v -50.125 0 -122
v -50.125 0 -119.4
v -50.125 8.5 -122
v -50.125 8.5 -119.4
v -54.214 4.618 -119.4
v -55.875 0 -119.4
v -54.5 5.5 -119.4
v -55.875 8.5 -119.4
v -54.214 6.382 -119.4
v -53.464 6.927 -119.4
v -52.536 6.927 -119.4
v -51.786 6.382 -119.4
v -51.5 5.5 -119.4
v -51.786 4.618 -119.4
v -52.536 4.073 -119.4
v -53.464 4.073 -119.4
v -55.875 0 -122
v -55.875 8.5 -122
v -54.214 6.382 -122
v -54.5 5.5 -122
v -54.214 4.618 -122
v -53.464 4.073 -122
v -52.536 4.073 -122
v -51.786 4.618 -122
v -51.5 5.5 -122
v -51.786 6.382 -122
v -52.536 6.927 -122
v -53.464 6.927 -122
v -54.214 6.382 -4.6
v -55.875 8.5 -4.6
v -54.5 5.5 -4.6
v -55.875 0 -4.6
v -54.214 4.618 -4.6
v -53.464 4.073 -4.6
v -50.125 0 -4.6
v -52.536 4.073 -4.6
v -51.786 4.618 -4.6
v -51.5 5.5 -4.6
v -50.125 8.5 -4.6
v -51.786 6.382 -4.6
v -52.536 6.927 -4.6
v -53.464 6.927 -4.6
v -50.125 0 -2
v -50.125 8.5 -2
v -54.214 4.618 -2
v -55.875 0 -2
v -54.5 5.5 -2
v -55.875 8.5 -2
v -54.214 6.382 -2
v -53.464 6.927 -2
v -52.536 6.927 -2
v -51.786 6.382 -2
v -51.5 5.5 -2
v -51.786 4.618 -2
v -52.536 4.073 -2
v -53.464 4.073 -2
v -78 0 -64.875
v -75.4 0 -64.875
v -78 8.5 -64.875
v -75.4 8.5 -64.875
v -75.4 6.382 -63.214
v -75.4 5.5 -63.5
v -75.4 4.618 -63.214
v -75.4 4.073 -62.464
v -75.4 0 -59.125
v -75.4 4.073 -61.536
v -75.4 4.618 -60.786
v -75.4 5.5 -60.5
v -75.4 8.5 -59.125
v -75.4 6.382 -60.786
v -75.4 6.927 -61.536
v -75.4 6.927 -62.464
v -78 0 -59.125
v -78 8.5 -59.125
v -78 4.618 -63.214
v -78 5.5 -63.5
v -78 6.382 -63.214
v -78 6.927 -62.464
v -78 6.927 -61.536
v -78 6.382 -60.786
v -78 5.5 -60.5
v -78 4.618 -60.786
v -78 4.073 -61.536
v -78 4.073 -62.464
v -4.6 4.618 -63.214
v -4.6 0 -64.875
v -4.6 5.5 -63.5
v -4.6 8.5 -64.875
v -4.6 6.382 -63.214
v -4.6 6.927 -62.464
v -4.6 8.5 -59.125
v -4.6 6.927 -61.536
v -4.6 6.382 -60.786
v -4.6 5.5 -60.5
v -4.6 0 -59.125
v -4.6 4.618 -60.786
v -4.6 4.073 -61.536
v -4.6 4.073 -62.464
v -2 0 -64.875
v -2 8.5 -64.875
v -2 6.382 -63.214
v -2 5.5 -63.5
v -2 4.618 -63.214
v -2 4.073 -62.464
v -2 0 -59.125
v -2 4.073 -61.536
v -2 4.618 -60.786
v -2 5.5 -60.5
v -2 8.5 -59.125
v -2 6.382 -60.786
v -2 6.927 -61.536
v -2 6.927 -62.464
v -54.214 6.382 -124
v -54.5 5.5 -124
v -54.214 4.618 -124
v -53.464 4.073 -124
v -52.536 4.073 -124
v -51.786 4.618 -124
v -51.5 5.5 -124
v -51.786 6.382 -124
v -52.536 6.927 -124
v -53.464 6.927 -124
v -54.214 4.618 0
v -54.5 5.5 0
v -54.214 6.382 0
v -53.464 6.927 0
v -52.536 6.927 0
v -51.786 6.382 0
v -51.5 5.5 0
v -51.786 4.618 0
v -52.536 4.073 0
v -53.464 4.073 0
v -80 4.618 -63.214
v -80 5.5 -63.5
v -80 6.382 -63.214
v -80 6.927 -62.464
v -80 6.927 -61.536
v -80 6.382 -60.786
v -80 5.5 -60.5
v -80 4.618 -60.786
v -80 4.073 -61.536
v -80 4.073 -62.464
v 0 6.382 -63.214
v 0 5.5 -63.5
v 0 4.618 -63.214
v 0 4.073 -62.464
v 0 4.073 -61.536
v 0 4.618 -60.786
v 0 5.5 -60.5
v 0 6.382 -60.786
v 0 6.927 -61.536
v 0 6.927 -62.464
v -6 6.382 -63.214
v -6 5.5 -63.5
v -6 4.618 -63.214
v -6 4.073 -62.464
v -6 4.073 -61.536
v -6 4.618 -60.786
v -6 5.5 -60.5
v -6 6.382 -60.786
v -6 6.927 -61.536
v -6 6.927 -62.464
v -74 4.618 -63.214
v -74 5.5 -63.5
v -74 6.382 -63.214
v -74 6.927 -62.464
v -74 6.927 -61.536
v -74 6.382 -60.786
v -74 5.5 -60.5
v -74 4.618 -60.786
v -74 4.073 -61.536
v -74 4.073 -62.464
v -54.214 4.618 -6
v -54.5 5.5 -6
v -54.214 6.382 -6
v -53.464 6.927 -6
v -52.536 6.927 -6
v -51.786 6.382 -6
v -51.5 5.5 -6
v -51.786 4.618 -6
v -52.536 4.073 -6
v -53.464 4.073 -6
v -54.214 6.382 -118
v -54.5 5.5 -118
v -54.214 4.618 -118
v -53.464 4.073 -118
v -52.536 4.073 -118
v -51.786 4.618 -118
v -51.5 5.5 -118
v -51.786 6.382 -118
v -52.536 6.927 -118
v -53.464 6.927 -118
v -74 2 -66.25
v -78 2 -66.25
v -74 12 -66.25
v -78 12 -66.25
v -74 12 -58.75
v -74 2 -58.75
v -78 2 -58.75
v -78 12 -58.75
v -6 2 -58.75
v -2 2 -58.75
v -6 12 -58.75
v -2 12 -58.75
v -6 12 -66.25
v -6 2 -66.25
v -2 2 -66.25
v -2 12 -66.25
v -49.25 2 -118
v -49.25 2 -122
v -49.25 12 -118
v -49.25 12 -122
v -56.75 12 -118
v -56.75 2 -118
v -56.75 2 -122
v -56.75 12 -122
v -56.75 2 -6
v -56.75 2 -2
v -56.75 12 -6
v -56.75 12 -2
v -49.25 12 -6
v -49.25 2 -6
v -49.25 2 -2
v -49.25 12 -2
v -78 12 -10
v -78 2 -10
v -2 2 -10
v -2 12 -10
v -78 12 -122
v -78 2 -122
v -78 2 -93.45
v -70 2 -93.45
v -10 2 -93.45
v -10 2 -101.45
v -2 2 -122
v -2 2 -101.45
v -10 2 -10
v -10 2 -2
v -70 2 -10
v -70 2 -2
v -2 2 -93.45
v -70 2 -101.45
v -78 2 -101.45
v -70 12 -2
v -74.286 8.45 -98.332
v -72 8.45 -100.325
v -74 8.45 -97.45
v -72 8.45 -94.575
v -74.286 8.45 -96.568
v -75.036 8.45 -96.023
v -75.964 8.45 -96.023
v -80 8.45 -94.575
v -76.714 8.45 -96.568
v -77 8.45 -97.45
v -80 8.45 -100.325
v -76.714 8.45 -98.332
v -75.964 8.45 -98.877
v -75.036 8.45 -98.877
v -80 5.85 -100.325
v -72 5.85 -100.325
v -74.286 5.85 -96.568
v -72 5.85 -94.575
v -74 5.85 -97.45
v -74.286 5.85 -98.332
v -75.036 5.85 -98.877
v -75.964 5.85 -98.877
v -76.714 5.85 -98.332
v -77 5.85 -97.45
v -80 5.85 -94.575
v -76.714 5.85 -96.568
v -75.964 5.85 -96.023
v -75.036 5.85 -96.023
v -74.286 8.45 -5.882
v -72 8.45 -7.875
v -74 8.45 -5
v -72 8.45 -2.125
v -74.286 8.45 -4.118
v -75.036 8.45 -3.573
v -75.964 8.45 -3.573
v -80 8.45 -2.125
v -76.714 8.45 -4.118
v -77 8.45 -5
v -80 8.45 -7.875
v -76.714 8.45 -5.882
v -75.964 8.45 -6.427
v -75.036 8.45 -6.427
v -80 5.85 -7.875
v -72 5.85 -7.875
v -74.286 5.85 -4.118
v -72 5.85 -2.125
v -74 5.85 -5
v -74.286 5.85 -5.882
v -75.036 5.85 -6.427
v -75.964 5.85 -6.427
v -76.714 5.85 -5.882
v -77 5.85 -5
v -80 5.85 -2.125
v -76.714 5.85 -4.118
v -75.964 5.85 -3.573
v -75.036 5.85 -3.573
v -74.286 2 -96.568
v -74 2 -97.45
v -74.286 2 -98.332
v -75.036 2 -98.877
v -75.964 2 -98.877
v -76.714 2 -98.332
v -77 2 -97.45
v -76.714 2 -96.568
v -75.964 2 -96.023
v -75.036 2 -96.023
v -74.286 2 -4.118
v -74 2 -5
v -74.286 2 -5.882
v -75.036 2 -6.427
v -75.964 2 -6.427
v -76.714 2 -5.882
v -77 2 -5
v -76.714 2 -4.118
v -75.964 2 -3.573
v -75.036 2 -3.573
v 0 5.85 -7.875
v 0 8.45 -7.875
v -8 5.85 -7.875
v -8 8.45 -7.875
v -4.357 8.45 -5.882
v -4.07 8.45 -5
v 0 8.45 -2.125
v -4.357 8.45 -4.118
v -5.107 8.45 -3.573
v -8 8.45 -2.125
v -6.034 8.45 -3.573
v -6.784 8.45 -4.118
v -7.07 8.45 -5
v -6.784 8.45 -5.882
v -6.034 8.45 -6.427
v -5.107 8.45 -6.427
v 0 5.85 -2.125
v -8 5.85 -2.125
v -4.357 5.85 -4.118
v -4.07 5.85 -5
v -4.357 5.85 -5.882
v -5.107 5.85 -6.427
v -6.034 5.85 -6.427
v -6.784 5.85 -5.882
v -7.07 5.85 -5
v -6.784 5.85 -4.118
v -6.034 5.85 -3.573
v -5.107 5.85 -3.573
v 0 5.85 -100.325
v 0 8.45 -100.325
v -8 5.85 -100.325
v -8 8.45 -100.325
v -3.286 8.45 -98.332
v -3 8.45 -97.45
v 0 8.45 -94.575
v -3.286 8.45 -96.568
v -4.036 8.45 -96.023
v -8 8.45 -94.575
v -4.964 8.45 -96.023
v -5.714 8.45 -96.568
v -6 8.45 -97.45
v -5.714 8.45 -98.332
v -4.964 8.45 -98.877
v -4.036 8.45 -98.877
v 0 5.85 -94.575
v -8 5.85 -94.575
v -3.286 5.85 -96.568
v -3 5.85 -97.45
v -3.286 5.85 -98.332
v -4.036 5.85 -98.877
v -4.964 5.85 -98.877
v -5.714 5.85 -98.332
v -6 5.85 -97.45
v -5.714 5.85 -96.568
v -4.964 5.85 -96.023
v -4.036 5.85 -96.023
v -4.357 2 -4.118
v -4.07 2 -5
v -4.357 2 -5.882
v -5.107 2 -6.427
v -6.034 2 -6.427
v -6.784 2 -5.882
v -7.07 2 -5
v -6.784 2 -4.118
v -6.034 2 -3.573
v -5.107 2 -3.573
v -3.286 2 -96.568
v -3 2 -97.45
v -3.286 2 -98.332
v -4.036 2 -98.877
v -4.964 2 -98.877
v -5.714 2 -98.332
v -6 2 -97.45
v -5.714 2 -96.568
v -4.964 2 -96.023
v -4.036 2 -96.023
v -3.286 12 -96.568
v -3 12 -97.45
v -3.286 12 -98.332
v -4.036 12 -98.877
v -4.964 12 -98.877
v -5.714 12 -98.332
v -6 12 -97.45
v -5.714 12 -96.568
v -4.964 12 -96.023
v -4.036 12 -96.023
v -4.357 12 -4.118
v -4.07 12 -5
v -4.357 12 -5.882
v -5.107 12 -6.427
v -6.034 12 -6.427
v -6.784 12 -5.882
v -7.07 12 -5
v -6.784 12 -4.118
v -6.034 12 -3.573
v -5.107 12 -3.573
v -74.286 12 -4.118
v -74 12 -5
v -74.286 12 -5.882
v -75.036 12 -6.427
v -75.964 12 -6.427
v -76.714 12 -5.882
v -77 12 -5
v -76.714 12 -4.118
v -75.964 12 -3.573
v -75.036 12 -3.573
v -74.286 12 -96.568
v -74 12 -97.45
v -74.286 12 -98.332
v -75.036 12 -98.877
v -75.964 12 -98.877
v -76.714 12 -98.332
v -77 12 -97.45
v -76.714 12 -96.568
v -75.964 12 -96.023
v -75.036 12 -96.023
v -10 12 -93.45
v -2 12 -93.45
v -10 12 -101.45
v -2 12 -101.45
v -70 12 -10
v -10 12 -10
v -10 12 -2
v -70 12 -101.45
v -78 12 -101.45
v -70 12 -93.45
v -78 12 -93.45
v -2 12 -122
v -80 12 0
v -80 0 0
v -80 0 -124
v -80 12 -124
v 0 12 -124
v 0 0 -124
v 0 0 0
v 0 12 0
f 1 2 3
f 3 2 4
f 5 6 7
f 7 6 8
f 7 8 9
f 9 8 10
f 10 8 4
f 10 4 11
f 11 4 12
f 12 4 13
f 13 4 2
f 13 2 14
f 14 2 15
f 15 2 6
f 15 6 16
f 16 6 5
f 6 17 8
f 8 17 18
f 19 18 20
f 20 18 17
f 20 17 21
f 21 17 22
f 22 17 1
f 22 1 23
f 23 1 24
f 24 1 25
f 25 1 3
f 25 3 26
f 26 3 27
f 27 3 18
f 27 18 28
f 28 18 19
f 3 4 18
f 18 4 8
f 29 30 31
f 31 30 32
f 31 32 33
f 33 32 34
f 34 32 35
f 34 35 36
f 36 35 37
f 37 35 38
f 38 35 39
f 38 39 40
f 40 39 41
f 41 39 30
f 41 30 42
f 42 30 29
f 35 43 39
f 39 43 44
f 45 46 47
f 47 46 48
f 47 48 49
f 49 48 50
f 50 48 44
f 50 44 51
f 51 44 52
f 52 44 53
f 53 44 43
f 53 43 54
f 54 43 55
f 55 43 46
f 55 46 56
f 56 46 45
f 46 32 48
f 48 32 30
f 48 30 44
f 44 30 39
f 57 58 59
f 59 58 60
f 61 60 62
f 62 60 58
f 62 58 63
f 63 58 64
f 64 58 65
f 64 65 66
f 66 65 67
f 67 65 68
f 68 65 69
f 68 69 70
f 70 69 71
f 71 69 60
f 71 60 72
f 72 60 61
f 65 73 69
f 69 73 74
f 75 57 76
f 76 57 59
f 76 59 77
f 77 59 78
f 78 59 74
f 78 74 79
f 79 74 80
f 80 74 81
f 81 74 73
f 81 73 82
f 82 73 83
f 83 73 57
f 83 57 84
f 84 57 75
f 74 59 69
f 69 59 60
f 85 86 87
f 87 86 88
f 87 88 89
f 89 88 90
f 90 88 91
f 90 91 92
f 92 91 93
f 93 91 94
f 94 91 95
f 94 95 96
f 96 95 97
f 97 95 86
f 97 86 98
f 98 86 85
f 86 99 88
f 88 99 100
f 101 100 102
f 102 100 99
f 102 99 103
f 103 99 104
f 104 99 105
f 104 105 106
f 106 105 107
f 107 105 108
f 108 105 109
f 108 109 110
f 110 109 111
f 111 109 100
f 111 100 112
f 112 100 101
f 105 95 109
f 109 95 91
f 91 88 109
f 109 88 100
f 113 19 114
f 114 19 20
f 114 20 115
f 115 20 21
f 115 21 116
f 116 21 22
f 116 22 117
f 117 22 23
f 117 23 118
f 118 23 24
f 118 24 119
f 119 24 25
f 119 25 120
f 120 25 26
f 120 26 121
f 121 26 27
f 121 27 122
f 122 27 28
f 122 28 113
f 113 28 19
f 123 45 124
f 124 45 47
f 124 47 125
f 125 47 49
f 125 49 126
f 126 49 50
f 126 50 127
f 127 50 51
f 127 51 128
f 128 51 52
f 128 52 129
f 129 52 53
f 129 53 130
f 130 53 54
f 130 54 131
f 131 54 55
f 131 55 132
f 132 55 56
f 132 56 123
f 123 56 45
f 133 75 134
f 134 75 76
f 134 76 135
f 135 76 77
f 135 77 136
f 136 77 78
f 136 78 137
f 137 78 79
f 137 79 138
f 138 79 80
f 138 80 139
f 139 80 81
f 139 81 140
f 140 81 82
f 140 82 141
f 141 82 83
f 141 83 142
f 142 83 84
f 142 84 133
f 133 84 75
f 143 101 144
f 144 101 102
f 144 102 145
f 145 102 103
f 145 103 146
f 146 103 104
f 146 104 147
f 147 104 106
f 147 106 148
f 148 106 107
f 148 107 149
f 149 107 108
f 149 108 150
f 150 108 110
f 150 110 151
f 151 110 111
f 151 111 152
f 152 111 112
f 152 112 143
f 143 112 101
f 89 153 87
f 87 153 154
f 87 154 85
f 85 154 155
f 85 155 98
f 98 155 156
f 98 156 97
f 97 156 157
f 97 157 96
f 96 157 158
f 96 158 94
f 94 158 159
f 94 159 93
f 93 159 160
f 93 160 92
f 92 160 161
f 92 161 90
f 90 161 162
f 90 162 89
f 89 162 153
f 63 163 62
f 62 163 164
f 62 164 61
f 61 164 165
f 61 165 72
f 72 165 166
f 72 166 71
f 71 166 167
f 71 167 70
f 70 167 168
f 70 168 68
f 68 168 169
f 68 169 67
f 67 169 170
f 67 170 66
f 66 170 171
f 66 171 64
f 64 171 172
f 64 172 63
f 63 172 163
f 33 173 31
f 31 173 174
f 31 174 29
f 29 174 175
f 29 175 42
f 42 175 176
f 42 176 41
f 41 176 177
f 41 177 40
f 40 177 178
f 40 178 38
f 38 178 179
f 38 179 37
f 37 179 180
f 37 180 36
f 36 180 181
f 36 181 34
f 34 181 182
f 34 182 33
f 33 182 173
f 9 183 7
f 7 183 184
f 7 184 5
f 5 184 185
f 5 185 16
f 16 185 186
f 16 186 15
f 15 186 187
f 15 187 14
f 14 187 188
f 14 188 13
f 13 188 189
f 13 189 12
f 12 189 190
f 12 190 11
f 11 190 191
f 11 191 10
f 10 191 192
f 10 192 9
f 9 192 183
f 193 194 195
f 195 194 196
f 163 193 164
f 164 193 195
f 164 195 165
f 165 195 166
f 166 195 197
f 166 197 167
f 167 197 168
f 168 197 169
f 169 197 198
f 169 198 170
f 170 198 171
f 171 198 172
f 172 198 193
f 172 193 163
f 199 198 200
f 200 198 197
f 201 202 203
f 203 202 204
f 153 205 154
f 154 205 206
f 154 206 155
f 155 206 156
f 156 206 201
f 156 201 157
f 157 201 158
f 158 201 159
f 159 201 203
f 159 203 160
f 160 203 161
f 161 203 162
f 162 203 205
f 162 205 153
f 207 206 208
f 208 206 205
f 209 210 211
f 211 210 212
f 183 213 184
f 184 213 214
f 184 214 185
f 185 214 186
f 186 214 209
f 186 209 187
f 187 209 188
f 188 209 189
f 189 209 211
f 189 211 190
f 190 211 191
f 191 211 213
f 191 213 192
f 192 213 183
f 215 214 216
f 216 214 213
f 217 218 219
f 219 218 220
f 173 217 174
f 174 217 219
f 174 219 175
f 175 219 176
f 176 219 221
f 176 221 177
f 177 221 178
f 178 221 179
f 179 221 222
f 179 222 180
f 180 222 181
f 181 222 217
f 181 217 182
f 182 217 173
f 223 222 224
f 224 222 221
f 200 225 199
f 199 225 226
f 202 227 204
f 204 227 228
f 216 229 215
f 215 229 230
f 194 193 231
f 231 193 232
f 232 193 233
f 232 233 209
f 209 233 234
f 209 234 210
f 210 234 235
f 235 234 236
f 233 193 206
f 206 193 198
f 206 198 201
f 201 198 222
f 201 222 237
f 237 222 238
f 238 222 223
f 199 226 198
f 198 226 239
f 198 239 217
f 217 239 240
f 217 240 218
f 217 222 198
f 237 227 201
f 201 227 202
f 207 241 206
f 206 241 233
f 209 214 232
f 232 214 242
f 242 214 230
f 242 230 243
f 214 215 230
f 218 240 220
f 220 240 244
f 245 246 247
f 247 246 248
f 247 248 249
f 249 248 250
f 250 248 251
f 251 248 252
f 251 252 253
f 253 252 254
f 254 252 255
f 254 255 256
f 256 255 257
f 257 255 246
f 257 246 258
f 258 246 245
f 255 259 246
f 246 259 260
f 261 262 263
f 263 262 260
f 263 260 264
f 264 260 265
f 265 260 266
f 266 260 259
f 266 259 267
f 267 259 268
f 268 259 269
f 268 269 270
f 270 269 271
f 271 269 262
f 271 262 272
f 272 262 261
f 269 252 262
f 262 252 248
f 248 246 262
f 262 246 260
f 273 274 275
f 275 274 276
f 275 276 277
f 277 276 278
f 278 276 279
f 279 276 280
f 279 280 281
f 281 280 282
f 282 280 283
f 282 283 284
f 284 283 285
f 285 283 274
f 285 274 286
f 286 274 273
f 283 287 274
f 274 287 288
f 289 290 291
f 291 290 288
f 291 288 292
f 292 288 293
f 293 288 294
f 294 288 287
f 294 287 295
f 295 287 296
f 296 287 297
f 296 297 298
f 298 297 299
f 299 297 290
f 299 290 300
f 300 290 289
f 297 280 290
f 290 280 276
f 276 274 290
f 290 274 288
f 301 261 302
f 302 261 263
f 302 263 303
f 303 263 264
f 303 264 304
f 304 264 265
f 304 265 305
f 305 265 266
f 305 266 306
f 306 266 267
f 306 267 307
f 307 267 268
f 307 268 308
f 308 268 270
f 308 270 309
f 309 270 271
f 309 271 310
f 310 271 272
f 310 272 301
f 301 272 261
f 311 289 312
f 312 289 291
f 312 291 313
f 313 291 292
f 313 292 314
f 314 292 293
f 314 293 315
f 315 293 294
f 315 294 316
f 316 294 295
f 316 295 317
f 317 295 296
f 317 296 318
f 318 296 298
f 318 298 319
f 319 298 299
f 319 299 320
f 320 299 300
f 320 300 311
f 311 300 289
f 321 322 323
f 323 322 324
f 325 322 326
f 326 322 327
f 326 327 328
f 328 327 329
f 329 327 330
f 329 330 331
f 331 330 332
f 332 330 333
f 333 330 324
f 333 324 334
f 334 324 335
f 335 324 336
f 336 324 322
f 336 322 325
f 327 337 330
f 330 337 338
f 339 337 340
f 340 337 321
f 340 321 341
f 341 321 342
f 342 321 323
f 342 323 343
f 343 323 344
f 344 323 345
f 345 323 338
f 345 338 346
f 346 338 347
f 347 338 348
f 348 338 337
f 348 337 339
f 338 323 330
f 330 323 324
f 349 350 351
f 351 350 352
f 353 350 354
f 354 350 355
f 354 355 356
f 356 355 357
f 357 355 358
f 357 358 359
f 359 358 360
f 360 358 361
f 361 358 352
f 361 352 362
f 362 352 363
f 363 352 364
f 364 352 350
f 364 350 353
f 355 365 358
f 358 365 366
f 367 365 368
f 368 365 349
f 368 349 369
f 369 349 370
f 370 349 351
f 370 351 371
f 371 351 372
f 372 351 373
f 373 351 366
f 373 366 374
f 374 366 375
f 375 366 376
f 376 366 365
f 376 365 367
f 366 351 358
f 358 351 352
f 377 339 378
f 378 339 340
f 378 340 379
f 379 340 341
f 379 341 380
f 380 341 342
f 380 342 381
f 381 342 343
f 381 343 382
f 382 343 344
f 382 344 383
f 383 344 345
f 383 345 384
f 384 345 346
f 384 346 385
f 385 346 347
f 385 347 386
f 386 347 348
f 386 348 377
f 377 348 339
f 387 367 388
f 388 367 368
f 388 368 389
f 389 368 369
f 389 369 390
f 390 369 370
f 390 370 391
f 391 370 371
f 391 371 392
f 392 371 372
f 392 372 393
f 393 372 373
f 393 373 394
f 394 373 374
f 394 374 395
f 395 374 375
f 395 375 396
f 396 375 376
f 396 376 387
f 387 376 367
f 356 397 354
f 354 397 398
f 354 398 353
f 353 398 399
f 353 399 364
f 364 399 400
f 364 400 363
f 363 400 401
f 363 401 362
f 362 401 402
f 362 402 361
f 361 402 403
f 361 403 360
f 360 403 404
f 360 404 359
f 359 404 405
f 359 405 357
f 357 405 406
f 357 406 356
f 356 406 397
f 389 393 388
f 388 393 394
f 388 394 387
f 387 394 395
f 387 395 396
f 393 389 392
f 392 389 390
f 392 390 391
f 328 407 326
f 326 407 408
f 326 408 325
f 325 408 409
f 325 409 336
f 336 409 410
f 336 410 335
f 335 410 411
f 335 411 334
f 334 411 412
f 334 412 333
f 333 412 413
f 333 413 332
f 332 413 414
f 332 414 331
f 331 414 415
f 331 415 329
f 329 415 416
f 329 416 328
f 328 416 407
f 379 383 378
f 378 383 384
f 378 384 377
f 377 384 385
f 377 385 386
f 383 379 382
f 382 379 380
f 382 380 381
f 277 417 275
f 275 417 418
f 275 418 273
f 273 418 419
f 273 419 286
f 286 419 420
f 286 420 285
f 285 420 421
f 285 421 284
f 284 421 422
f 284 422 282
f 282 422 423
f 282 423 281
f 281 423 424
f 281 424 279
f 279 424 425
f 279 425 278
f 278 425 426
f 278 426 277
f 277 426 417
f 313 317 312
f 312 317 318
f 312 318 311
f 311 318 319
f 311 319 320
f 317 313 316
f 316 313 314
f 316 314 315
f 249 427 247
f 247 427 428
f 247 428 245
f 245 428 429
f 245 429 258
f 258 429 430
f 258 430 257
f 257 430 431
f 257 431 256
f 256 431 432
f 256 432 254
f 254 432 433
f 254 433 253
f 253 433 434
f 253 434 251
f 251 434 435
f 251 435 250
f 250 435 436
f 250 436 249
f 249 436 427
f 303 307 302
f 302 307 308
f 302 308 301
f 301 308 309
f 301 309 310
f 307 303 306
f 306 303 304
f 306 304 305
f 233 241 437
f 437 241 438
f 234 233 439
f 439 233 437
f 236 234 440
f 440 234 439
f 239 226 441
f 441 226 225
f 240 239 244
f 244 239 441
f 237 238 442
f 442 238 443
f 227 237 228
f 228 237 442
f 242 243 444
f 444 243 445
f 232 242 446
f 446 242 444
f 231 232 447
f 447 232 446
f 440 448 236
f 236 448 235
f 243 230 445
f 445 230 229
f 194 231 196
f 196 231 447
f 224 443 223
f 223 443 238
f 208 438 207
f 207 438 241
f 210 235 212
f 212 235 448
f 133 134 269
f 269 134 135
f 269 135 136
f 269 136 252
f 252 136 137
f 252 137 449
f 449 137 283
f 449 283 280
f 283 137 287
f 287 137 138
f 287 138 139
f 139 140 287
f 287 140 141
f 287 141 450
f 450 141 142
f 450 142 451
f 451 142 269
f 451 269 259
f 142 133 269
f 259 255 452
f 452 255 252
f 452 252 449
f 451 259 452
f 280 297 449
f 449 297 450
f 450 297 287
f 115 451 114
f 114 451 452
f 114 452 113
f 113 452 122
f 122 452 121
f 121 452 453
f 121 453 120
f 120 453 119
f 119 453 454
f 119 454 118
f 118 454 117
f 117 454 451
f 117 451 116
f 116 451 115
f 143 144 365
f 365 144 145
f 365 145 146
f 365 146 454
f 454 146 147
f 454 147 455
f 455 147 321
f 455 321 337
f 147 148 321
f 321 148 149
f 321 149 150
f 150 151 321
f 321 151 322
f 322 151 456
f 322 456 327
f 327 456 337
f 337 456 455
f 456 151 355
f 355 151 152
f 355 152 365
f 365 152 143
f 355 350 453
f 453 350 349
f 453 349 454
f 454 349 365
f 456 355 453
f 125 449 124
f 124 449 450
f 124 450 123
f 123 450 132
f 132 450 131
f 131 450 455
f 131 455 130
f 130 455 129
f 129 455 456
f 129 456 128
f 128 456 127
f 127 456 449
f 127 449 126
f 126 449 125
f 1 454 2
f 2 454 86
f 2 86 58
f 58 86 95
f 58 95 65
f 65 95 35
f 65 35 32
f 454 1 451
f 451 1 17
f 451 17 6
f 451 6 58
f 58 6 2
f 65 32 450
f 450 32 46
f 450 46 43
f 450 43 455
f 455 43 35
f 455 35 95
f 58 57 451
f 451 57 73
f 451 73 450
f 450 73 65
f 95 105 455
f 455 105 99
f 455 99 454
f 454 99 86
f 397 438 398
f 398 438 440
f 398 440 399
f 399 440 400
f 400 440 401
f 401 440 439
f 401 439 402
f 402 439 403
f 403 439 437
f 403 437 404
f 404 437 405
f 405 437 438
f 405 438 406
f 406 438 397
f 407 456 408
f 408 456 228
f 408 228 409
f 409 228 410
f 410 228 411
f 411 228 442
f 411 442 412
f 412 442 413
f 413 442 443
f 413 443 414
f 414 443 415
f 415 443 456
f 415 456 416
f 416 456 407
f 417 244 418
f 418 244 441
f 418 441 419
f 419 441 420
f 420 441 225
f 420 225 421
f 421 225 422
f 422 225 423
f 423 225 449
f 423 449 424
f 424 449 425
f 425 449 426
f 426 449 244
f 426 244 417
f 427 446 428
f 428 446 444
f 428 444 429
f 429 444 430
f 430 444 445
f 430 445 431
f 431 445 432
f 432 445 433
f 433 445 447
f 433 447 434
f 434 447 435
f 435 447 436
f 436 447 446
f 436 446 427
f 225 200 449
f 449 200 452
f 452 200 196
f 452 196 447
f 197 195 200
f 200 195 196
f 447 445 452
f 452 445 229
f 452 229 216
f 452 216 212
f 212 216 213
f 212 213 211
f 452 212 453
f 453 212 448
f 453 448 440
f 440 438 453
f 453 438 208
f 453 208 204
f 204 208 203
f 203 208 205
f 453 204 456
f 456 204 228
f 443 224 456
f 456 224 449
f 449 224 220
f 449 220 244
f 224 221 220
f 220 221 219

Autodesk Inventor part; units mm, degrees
ref_plane "YZ Plane" through (0, 0, 0) normal (1, 0, 0) x (0, 1, 0)
ref_plane "XZ Plane" through (0, 0, 0) normal (0, 1, 0) x (-1, 0, 0)
ref_plane "XY Plane" through (0, 0, 0) normal (0, 0, 1) x (1, 0, 0)
sketch "Sketch1" plane through (0, 0, 0) normal (0, 1, 0) x (-1, 0, 0)
  line L0 (0, 0) -> (80, 0)
  line L1 (80, 0) -> (80, -124)
  line L2 (80, -124) -> (0, -124)
  line L3 (0, -124) -> (0, 0)
  dimension "d0" = 80
  dimension "d1" = 124
extrude "Extrusion1" add sketch "Sketch1" along normal blind 12
sketch "Sketch2" plane through (0, 12, 0) normal (0, 1, 0) x (1, 0, 0)
  line L0 (0, 0) -> (0, 124) projected
  line L1 (0, 124) -> (-2, 124)
  line L2 (0, 124) -> (-80, 124) projected
  line L3 (-2, 124) -> (-2, 122)
  line L4 (-2, 122) -> (-78, 122)
  line L5 (-78, 122) -> (-78, 2)
  line L6 (-78, 2) -> (-2, 2)
  line L7 (-2, 2) -> (-2, 122)
  dimension "d4" = 2
  dimension "d5" = 2
  dimension "d6" = 270
  dimension "d7" = 76
  dimension "d8" = 120
extrude "Extrusion2" cut sketch "Sketch2" against normal blind 10
sketch "Sketch5" plane through (0, 2, 0) normal (0, 1, 0) x (1, 0, 0)
  line L0 (-2, 2) -> (-78, 2) projected
  line L1 (-2, 2) -> (-10, 2)
  line L2 (-10, 2) -> (-10, 10)
  line L3 (-10, 10) -> (-2, 10)
  line L4 (-2, 10) -> (-2, 2)
  line L5 (-2, 2) -> (-4.5, 2)
  line L6 (-4.5, 2) -> (-4.5, 5)
  line L7 (-78, 2) -> (-70, 2)
  line L8 (-70, 2) -> (-70, 10)
  line L9 (-70, 10) -> (-78, 10)
  line L10 (-78, 10) -> (-78, 2)
  line L11 (-2, 2) -> (-78, 2) projected
  line L12 (-78, 2) -> (-78, 101.45)
  line L13 (-78, 2) -> (21.45, 2) construction
  line L14 (-2, 122) -> (-2, 2) projected
  line L15 (-2, 2) -> (-2, 101.45)
  line L16 (-2, 2) -> (97.45, 2) construction
  line L17 (-78, 101.45) -> (-70, 101.45)
  line L18 (-70, 101.45) -> (-70, 93.45)
  line L19 (-70, 93.45) -> (-78, 93.45)
  line L20 (-78, 93.45) -> (-78, 101.45)
  line L21 (-2, 101.45) -> (-10, 101.45)
  line L22 (-10, 101.45) -> (-10, 93.45)
  line L23 (-10, 93.45) -> (-2, 93.45)
  line L24 (-2, 93.45) -> (-2, 101.45)
  point P0 (0, 0)
  dimension "d31" = 8
  dimension "d32" = 8
  dimension "d34" = 2.5
  dimension "d35" = 3
  dimension "d36" = 8
  dimension "d37" = 8
  dimension "d83" = 99.45
  dimension "d84" = 90
  dimension "d85" = 99.45
  dimension "d86" = 90
  dimension "d87" = 8
  dimension "d88" = 8
  dimension "d89" = 8
  dimension "d90" = 8
extrude "Extrusion8" add sketch "Sketch5" along normal blind 10
sketch "Sketch9" plane through (0, 12, 0) normal (0, 1, 0) x (1, 0, 0)
  circle A0 centre (-5.5701, 5) radius 1.5
  circle A1 centre (-75.5, 5) radius 1.5
  circle A2 centre (-4.5, 97.45) radius 1.5
  circle A3 centre (-75.5, 97.45) radius 1.5
  line L0 (-70, 101.45) -> (-78, 101.45) projected
  line L1 (-78, 10) -> (-78, 93.45) projected
  line L2 (-10, 2) -> (-70, 2) projected
  line L3 (-10, 10) -> (-10, 2) projected
  line L4 (-10, 93.45) -> (-2, 93.45) projected
  line L5 (-2, 93.45) -> (-2, 10) projected
  point P0 (0, 0)
  dimension "d93" = 4
  dimension "d94" = 2.5
  dimension "d95" = 3
  dimension "d96" = 2.5
  dimension "d97" = 3
  dimension "d98" = 4.4299
  dimension "d99" = 3
  dimension "d100" = 4
  dimension "d101" = 2.5
extrude "Extrusion9" cut sketch "Sketch9" against normal blind 10
sketch "Sketch11" plane through (0, 0, -124) normal (0, 0, -1) x (-1, 0, 0)
  line L0 (80, 0) -> (80, 12) projected
  line L1 (80, 0) -> (53, 0)
  line L2 (0, 0) -> (80, 0) projected
  line L3 (53, 0) -> (53, 5.5)
  circle A0 centre (53, 5.5) radius 1.5
  dimension "d107" = 27
  dimension "d108" = 5.5
  dimension "d109" = 3
sketch "Sketch12" plane through (0, 0, 0) normal (1, 0, 0) x (0, 0, -1)
  line L0 (0, 0) -> (0, 12) projected
  line L1 (0, 0) -> (0, 5.85)
  line L2 (0, 5.85) -> (2.125, 5.85)
  line L3 (2.125, 5.85) -> (7.875, 5.85)
  line L4 (7.875, 5.85) -> (7.875, 8.45)
  line L5 (7.875, 8.45) -> (2.125, 8.45)
  line L6 (2.125, 8.45) -> (2.125, 5.85)
  line L7 (124, 0) -> (0, 0) projected
  line L8 (7.875, 5.85) -> (94.575, 5.85)
  line L9 (10, 12) -> (10, 2) projected
  line L10 (7.875, 5.85) -> (94.575, 5.85) construction
  line L11 (94.575, 5.85) -> (100.325, 5.85)
  line L12 (100.325, 5.85) -> (100.325, 8.45)
  line L13 (100.325, 8.45) -> (94.575, 8.45)
  line L14 (94.575, 8.45) -> (94.575, 5.85)
  dimension "d112" = 5.85
  dimension "d113" = 2.125
  dimension "d114" = 5.75
  dimension "d115" = 2.6
  dimension "d122" = 86.7
  dimension "d123" = 0
  dimension "d124" = 5.75
  dimension "d125" = 2.6
extrude "Extrusion11" cut sketch "Sketch12" against normal blind 8
sketch "Sketch13" plane through (-80, 0, -124) normal (-1, 0, 0) x (0, 0, 1)
  line L0 (124, 0) -> (124, 5.85)
  line L1 (124, 0) -> (124, 12) projected
  line L2 (124, 5.85) -> (121.875, 5.85)
  line L3 (121.875, 5.85) -> (116.125, 5.85)
  line L4 (116.125, 5.85) -> (116.125, 8.45)
  line L5 (116.125, 8.45) -> (121.875, 8.45)
  line L6 (121.875, 8.45) -> (121.875, 5.85)
  line L7 (116.125, 5.85) -> (29.425, 5.85)
  line L8 (114, 2) -> (114, 12) projected
  line L9 (116.125, 5.85) -> (202.825, 5.85) construction
  line L10 (29.425, 5.85) -> (23.675, 5.85)
  line L11 (23.675, 5.85) -> (23.675, 8.45)
  line L12 (23.675, 8.45) -> (29.425, 8.45)
  line L13 (29.425, 8.45) -> (29.425, 5.85)
  dimension "d126" = 5.85
  dimension "d127" = 2.125
  dimension "d128" = 5.75
  dimension "d129" = 2.6
  dimension "d130" = 86.7
  dimension "d131" = 180
  dimension "d132" = 5.75
  dimension "d181" = 2.6
extrude "Extrusion12" cut sketch "Sketch13" against normal blind 8
sketch "Sketch14" plane through (0, 0, 0) normal (1, 0, 0) x (0, 0, -1)
  line L0 (0, 0) -> (124, 0) projected
  line L1 (0, 0) -> (62, 0)
  line L2 (62, 0) -> (62, 5.5)
  circle A0 centre (62, 5.5) radius 1.5
  line L3 (0, 0) -> (0, 12) projected
  dimension "d135" = 5.5
  dimension "d136" = 3
  dimension "d139" = 62
sketch "Sketch15" plane through (0, 2, 0) normal (0, 1, 0) x (1, 0, 0)
  line L0 (-80, 0) -> (0, 0) projected
  line L1 (-80, 0) -> (-56.75, 0)
  line L2 (-56.75, 0) -> (-56.75, 2)
  line L3 (-10, 2) -> (-70, 2) projected
  line L4 (-56.75, 2) -> (-49.25, 2)
  line L5 (-49.25, 2) -> (-49.25, 6)
  line L6 (-49.25, 6) -> (-56.75, 6)
  line L7 (-56.75, 6) -> (-56.75, 2)
  line L8 (0, 124) -> (-80, 124) projected
  line L9 (-80, 124) -> (-56.75, 124)
  line L10 (-56.75, 124) -> (-56.75, 122)
  line L11 (-78, 122) -> (-2, 122) projected
  line L12 (-56.75, 122) -> (-49.25, 122)
  line L13 (-49.25, 122) -> (-49.25, 118)
  line L14 (-49.25, 118) -> (-56.75, 118)
  line L15 (-56.75, 118) -> (-56.75, 122)
  line L16 (0, 0) -> (0, 58.75)
  line L17 (0, 0) -> (0, 124) projected
  line L18 (0, 58.75) -> (-2, 58.75)
  line L19 (-2, 93.45) -> (-2, 10) projected
  line L20 (-2, 58.75) -> (-6, 58.75)
  line L21 (-6, 58.75) -> (-6, 66.25)
  line L22 (-6, 66.25) -> (-2, 66.25)
  line L23 (-2, 66.25) -> (-2, 58.75)
  line L24 (-80, 0) -> (-80, 58.75)
  line L25 (-80, 124) -> (-80, 0) projected
  line L26 (-80, 58.75) -> (-78, 58.75)
  line L27 (-78, 10) -> (-78, 93.45) projected
  line L28 (-78, 58.75) -> (-74, 58.75)
  line L29 (-74, 58.75) -> (-74, 66.25)
  line L30 (-74, 66.25) -> (-78, 66.25)
  line L31 (-78, 66.25) -> (-78, 58.75)
  dimension "d140" = 23.25
  dimension "d141" = 7.5
  dimension "d142" = 4
  dimension "d143" = 23.25
  dimension "d144" = 7.5
  dimension "d145" = 4
  dimension "d146" = 58.75
  dimension "d147" = 4
  dimension "d148" = 7.5
  dimension "d149" = 58.75
  dimension "d150" = 4
  dimension "d151" = 7.5
extrude "Extrusion14" add sketch "Sketch15" along normal blind 10 contours L7 L6 L5 L3 | L20 L21 L22 L19 | L11 L13 L14 L15 | L27 L30 L29 L28
extrude "Extrusion15" cut sketch "Sketch11" against normal blind 124
extrude "Extrusion16" cut sketch "Sketch14" against normal blind 82
sketch "Sketch16" plane through (0, 0, 0) normal (0, -1, 0) x (1, 0, 0)
  line L0 (-80, 0) -> (0, 0) projected
  line L1 (-80, 0) -> (-55.875, 0)
  line L2 (-55.875, 0) -> (-55.875, -2)
  line L3 (-55.875, -2) -> (-50.125, -2)
  line L4 (-50.125, -2) -> (-50.125, -4.6)
  line L5 (-50.125, -4.6) -> (-55.875, -4.6)
  line L6 (-55.875, -4.6) -> (-55.875, -2)
  line L7 (0, -124) -> (-80, -124) projected
  line L8 (-80, -124) -> (-55.875, -124)
  line L9 (-55.875, -124) -> (-55.875, -122)
  line L10 (-55.875, -122) -> (-50.125, -122)
  line L11 (-50.125, -122) -> (-50.125, -119.4)
  line L12 (-50.125, -119.4) -> (-55.875, -119.4)
  line L13 (-55.875, -119.4) -> (-55.875, -122)
  line L14 (-80, 0) -> (-80, -59.125)
  line L15 (-80, 0) -> (-80, -124) projected
  line L16 (-80, 0) -> (-20.875, 0) construction
  line L17 (-80, -59.125) -> (-78, -59.125)
  line L18 (-74, -60.5) -> (-74, -63.5) projected
  line L19 (-78, -59.125) -> (-75.4, -59.125)
  line L20 (-75.4, -59.125) -> (-75.4, -64.875)
  line L21 (-75.4, -64.875) -> (-78, -64.875)
  line L22 (-78, -64.875) -> (-78, -59.125)
  line L23 (0, 0) -> (0, -59.125)
  line L24 (-2, -58.75) -> (-2, -10) projected
  line L25 (0, 0) -> (59.125, 0) construction
  line L26 (0, -59.125) -> (-2, -59.125)
  line L27 (0, -63.5) -> (-6, -63.5) projected
  line L28 (-2, -59.125) -> (-4.6, -59.125)
  line L29 (-4.6, -59.125) -> (-4.6, -64.875)
  line L30 (-4.6, -64.875) -> (-2, -64.875)
  line L31 (-2, -64.875) -> (-2, -59.125)
  dimension "d158" = 24.125
  dimension "d162" = 2
  dimension "d163" = 5.75
  dimension "d164" = 2.6
  dimension "d165" = 24.125
  dimension "d166" = 2
  dimension "d167" = 5.75
  dimension "d168" = 2.6
  dimension "d169" = 59.125
  dimension "d170" = 90
  dimension "d171" = 2
  dimension "d172" = 2.6
  dimension "d173" = 5.75
  dimension "d174" = 59.125
  dimension "d175" = 90
  dimension "d176" = 2
  dimension "d177" = 2.6
  dimension "d178" = 5.75
extrude "Extrusion17" cut sketch "Sketch16" against normal blind 8.5
properties part number "Case_Top"
